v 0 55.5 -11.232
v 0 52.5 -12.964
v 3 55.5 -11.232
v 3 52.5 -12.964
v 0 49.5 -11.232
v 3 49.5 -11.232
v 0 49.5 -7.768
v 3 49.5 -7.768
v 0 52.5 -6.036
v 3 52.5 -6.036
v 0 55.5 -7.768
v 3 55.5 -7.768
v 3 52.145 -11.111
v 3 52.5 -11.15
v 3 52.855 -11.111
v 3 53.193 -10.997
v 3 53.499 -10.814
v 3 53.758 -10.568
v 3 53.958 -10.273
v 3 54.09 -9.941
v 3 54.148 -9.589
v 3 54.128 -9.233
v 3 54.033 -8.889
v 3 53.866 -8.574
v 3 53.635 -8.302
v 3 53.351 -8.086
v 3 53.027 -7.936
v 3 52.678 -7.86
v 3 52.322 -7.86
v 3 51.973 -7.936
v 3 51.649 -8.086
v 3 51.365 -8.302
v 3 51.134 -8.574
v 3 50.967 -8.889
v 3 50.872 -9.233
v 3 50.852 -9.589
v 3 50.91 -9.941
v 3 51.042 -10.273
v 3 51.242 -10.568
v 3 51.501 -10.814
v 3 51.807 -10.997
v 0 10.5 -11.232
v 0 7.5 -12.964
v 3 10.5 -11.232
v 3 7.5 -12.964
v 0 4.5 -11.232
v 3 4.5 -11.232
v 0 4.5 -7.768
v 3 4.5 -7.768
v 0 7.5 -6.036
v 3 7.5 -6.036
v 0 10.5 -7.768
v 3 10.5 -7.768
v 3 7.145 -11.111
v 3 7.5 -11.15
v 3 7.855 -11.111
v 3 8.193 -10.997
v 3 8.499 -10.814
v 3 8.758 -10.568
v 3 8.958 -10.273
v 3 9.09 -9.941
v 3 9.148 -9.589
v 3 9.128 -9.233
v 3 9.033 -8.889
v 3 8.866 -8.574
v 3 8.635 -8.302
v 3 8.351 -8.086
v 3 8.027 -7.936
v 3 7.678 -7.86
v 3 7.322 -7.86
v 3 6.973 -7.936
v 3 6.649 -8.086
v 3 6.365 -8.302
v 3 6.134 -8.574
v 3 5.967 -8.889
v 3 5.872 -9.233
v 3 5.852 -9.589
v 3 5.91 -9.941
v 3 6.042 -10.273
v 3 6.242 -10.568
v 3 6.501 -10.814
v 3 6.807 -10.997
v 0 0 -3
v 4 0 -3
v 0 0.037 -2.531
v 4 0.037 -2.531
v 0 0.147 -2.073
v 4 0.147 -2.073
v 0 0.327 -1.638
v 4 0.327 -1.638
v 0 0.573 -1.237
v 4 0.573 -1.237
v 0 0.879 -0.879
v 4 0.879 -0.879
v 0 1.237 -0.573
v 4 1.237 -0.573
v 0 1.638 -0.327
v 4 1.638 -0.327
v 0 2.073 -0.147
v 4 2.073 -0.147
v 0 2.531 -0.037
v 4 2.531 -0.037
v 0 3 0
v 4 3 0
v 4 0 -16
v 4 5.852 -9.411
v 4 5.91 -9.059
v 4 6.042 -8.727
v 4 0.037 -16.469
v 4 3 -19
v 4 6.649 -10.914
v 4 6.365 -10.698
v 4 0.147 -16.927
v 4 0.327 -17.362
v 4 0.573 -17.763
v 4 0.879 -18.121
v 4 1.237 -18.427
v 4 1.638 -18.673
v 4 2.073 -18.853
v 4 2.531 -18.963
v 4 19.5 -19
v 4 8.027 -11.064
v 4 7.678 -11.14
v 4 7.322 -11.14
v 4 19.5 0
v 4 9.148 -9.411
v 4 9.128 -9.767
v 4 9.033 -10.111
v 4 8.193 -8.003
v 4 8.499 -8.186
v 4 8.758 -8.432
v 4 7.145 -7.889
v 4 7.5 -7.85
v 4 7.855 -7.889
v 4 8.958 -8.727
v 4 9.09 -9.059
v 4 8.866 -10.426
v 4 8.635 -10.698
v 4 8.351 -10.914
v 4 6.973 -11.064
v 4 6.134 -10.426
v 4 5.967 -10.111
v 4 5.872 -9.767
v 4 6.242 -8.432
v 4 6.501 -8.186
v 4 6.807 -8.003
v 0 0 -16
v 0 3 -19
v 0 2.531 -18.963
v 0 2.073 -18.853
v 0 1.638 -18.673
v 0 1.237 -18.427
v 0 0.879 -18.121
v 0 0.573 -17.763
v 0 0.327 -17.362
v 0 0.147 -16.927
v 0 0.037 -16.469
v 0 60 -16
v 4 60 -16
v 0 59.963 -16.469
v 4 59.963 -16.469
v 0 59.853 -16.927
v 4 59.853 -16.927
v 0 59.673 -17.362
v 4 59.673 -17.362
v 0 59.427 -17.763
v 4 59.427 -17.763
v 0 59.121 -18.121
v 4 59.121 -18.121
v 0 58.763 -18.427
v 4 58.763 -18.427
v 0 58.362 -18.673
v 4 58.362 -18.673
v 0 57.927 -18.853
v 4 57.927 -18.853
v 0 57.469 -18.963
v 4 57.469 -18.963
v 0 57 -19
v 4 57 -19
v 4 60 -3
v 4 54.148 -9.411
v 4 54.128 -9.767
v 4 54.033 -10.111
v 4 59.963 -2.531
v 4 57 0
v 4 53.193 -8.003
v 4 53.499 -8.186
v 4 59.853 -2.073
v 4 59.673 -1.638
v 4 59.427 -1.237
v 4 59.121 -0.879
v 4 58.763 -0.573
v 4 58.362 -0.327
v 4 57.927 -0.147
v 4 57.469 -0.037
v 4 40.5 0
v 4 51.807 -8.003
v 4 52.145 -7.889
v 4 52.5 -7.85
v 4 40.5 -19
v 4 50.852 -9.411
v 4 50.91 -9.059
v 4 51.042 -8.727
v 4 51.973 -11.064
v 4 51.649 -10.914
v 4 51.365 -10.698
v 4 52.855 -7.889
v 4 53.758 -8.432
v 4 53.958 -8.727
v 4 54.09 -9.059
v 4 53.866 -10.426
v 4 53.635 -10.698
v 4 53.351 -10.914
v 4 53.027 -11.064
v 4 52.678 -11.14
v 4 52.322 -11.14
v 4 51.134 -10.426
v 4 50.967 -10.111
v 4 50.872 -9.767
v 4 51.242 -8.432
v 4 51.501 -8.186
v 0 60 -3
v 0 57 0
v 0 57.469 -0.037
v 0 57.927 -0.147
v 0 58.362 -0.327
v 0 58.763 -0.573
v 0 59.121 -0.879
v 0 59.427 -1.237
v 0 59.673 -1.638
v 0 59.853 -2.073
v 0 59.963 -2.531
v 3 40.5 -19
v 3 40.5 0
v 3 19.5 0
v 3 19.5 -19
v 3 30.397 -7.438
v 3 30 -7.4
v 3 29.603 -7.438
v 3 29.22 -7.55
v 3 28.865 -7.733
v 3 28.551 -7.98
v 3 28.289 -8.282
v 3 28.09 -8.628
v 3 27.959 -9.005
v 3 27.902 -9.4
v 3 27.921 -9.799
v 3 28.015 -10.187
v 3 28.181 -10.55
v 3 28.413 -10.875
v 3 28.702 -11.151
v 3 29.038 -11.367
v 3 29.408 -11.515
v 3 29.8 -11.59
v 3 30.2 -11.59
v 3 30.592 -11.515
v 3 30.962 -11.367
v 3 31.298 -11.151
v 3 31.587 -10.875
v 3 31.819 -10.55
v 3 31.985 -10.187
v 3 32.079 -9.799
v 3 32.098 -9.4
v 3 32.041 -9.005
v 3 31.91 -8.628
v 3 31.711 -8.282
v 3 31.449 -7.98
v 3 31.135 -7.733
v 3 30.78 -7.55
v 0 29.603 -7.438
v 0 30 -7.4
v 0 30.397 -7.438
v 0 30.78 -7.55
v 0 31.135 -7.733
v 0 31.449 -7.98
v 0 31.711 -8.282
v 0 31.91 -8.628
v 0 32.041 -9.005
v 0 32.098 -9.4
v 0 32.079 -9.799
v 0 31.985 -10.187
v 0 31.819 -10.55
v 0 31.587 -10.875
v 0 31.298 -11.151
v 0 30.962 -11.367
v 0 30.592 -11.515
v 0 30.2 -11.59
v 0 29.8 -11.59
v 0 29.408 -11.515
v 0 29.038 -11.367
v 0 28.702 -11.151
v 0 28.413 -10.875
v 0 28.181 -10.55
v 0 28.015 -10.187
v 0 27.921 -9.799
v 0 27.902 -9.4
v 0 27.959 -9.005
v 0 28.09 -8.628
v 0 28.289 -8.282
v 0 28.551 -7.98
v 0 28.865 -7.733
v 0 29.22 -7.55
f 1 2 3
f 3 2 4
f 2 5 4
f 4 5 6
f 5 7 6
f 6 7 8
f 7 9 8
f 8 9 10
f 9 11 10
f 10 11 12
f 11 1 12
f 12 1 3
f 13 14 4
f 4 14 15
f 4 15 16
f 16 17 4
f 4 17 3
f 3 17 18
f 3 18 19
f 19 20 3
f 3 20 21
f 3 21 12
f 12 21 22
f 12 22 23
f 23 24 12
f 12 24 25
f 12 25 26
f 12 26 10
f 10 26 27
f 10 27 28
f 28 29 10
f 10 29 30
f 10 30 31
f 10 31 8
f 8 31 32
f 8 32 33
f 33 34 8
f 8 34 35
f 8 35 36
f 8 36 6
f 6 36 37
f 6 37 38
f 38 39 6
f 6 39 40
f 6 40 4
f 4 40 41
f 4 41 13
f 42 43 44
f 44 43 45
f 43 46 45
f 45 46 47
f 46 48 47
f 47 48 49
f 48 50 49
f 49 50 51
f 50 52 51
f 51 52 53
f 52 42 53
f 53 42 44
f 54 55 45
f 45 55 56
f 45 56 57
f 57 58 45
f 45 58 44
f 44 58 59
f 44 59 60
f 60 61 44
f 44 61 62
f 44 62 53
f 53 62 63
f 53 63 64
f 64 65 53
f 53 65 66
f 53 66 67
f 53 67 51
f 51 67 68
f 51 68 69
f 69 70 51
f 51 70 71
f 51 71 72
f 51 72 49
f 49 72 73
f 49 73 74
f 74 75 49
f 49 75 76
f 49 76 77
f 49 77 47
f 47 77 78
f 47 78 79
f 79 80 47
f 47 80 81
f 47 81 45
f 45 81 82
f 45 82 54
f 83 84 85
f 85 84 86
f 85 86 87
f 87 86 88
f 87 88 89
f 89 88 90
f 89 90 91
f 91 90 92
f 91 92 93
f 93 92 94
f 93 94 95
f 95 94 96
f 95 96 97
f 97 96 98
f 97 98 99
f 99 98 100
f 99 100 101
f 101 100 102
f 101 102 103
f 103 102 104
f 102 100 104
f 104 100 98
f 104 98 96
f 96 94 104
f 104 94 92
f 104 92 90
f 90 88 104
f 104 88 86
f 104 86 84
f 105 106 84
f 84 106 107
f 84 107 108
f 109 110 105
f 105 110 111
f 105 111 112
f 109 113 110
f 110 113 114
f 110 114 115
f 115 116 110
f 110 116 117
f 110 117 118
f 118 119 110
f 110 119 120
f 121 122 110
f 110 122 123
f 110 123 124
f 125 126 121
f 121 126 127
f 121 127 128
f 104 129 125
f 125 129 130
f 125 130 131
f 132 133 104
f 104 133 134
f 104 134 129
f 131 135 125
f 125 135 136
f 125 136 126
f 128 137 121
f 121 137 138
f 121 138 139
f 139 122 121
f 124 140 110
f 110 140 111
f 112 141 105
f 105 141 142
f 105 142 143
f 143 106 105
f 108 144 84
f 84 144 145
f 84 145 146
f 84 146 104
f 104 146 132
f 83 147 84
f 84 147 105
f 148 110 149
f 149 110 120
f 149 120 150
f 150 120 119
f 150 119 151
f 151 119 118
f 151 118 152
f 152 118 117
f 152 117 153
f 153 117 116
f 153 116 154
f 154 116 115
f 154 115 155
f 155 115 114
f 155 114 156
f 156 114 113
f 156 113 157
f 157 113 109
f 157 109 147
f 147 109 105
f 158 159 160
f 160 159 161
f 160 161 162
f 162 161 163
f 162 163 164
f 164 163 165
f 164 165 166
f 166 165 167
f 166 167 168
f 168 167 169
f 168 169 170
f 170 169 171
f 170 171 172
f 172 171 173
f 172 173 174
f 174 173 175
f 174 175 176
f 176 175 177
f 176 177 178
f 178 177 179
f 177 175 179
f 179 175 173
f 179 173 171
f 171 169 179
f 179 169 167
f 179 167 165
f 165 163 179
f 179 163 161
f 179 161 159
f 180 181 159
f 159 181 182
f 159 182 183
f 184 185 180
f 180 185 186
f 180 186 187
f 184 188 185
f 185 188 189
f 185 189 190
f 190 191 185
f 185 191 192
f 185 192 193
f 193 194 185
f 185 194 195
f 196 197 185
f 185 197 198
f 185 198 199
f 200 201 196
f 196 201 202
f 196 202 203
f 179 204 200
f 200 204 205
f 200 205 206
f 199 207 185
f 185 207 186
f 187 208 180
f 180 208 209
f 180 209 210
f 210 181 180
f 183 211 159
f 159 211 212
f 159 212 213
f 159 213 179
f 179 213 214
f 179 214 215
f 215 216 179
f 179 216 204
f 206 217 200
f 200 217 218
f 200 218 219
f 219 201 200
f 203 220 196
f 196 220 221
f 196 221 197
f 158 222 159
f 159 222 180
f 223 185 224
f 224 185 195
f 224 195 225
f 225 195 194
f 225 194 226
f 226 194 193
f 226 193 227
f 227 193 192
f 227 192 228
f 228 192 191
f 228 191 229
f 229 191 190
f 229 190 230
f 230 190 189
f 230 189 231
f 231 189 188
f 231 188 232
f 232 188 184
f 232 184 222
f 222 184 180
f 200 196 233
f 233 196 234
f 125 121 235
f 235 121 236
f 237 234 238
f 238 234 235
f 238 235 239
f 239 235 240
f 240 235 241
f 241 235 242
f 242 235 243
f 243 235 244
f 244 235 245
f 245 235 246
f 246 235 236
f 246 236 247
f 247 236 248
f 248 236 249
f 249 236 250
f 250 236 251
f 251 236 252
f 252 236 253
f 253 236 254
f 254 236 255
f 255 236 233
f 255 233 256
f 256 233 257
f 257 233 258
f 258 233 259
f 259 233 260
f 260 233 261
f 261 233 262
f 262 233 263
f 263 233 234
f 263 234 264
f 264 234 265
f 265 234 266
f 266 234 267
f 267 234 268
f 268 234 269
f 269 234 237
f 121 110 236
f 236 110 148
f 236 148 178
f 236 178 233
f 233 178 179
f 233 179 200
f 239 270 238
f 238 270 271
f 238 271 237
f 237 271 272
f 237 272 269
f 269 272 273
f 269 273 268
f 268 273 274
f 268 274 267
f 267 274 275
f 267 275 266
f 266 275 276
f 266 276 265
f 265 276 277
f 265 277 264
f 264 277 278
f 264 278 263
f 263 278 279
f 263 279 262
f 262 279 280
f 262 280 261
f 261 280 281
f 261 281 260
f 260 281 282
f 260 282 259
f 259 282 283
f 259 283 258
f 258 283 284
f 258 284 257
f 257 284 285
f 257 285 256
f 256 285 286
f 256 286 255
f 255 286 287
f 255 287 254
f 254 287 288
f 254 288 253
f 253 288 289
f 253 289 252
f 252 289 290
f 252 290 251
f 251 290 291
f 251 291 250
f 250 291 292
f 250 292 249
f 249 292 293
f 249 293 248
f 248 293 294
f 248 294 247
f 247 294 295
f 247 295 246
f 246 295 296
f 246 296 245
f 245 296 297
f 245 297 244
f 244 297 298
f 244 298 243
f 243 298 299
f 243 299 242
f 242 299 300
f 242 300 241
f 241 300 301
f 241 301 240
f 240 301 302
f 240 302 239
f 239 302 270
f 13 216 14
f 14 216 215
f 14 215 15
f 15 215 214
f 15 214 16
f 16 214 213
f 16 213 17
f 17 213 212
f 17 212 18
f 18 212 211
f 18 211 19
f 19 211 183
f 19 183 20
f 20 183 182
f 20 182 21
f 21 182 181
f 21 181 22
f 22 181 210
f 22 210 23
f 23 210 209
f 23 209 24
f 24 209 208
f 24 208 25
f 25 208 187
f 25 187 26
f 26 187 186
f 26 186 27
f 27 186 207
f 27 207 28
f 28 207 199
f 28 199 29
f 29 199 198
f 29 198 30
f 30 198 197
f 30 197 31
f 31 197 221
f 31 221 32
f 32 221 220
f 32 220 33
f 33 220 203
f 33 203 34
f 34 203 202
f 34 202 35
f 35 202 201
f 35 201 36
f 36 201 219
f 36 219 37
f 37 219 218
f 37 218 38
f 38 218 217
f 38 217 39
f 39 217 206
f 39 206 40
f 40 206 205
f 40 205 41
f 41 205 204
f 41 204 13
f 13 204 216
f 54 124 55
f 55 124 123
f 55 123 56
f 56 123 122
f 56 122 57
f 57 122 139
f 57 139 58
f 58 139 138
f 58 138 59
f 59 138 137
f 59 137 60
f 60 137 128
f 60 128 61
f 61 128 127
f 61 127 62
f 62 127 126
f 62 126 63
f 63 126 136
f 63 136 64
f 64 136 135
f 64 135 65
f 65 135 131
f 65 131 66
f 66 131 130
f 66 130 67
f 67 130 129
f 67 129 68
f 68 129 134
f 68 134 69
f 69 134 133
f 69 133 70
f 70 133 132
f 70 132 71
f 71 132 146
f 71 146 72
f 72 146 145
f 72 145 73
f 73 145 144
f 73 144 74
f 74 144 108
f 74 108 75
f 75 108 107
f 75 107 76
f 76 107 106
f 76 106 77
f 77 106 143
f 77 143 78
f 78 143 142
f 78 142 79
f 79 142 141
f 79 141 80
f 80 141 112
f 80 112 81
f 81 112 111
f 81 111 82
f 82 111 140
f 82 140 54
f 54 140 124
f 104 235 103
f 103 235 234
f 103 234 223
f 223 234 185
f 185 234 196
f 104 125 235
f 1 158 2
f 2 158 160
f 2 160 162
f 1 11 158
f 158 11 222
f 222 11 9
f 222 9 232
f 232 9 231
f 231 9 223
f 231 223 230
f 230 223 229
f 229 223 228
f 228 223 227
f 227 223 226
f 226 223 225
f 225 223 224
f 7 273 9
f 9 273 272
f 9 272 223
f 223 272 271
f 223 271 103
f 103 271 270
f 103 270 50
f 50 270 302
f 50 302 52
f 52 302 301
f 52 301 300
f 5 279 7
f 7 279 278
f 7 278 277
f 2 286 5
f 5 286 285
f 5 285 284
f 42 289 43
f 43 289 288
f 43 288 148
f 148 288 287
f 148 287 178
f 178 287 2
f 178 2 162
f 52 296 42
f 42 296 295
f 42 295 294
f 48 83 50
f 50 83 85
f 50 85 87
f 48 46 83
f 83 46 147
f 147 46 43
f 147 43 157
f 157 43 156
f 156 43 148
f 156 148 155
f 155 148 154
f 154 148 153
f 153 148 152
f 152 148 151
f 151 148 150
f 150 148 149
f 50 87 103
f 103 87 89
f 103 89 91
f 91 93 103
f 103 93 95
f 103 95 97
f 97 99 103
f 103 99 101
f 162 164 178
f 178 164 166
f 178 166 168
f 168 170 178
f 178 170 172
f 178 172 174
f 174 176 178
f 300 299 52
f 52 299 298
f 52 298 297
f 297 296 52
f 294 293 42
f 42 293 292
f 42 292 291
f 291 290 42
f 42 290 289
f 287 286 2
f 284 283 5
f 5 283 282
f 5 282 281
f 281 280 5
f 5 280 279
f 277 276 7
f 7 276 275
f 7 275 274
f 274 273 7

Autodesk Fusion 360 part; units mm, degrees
sketch "Sketch1" plane through (0, 0, 0) normal (1, 0, 0) x (0, 0, -1)
  line L0 (0, 0) -> (19, 0)
  line L1 (19, 0) -> (19, 60)
  line L2 (19, 60) -> (0, 60)
  line L3 (0, 60) -> (0, 0)
  circle A0 centre (9.5, 52.5) radius 1.65
  circle A1 centre (9.5, 7.5) radius 1.65
  circle A2 centre (9.5, 30) radius 2.1
  point P0 (9.5, 60)
  point P1 (0, 30)
  dimension "d1" = 3.3
  dimension "d2" = 45
  dimension "d3" = 60
  dimension "d4" = 19
  dimension "d5" = 9.5
  dimension "d6" = 7.5
  dimension "d7" = 4.2
extrude "Extrude1" add sketch "Sketch1" along normal blind 4
sketch "Sketch2" plane through (4, 0, 0) normal (1, 0, 0) x (0, 0, -1)
  circle A0 centre (9.5, 7.5) radius 1.65
  circle A1 centre (9.5, 52.5) radius 1.65
  circle A2 centre (9.5, 30) radius 2.1
  line L0 (0, 60) -> (0, 0)
  line L1 (0, 0) -> (19, 0)
  line L2 (19, 0) -> (19, 60)
  line L3 (19, 60) -> (0, 60)
  line L4 (19, 40.5) -> (0, 40.5)
  line L5 (0, 40.5) -> (0, 19.5)
  line L6 (0, 19.5) -> (19, 19.5)
  line L7 (19, 19.5) -> (19, 40.5)
  line L8 (19, 40.5) -> (0, 19.5) construction
  line L9 (0, 40.5) -> (19, 19.5) construction
  point P0 (9.5, 30)
  dimension "d10" = 21
extrude "Extrude2" cut sketch "Sketch2" against normal blind 1 contours L0 L2 L4 L5 L6 L7
fillet "Fillet1" radius 3 4 edges at (2, 60, 0) (2, 60, -19) (2, 0, -19) (2, 0, 0)
sketch "Sketch3" plane through (0, 0, 0) normal (-1, 0, 0) x (0, 0, 1)
  arc A0 (-3, 0) -> (0, 3) centre (-3, 3) ccw
  line L0 (0, 3) -> (0, 57)
  arc A1 (0, 57) -> (-3, 60) centre (-3, 57) ccw
  line L1 (-3, 60) -> (-16, 60)
  arc A2 (-16, 60) -> (-19, 57) centre (-16, 57) ccw
  line L2 (-19, 57) -> (-19, 3)
  arc A3 (-19, 3) -> (-16, 0) centre (-16, 3) ccw
  line L3 (-16, 0) -> (-3, 0)
  circle A4 centre (-9.5, 7.5) radius 1.65
  circle A5 centre (-9.5, 52.5) radius 1.65
  circle A6 centre (-9.5, 30) radius 2.1
  line L4 (-11.2321, 55.5) -> (-12.9641, 52.5)
  line L5 (-12.9641, 52.5) -> (-11.2321, 49.5)
  line L6 (-11.2321, 49.5) -> (-7.7679, 49.5)
  line L7 (-7.7679, 49.5) -> (-6.0359, 52.5)
  line L8 (-6.0359, 52.5) -> (-7.7679, 55.5)
  line L9 (-7.7679, 55.5) -> (-11.2321, 55.5)
  line L10 (-11.2321, 10.5) -> (-12.9641, 7.5)
  line L11 (-12.9641, 7.5) -> (-11.2321, 4.5)
  line L12 (-11.2321, 4.5) -> (-7.7679, 4.5)
  line L13 (-7.7679, 4.5) -> (-6.0359, 7.5)
  line L14 (-6.0359, 7.5) -> (-7.7679, 10.5)
  line L15 (-7.7679, 10.5) -> (-11.2321, 10.5)
  point P0 (-9.5, 52.5)
  point P1 (-9.5, 7.5)
  dimension "d15" = 6
  dimension "d16" = 6
extrude "Extrude3" cut sketch "Sketch3" against normal blind 3 contours L4 L5 L6 L7 L8 L9 | L10 L11 L12 L13 L14 L15
equation "d5 = d4 / 2"
equation "d16 = d15"
